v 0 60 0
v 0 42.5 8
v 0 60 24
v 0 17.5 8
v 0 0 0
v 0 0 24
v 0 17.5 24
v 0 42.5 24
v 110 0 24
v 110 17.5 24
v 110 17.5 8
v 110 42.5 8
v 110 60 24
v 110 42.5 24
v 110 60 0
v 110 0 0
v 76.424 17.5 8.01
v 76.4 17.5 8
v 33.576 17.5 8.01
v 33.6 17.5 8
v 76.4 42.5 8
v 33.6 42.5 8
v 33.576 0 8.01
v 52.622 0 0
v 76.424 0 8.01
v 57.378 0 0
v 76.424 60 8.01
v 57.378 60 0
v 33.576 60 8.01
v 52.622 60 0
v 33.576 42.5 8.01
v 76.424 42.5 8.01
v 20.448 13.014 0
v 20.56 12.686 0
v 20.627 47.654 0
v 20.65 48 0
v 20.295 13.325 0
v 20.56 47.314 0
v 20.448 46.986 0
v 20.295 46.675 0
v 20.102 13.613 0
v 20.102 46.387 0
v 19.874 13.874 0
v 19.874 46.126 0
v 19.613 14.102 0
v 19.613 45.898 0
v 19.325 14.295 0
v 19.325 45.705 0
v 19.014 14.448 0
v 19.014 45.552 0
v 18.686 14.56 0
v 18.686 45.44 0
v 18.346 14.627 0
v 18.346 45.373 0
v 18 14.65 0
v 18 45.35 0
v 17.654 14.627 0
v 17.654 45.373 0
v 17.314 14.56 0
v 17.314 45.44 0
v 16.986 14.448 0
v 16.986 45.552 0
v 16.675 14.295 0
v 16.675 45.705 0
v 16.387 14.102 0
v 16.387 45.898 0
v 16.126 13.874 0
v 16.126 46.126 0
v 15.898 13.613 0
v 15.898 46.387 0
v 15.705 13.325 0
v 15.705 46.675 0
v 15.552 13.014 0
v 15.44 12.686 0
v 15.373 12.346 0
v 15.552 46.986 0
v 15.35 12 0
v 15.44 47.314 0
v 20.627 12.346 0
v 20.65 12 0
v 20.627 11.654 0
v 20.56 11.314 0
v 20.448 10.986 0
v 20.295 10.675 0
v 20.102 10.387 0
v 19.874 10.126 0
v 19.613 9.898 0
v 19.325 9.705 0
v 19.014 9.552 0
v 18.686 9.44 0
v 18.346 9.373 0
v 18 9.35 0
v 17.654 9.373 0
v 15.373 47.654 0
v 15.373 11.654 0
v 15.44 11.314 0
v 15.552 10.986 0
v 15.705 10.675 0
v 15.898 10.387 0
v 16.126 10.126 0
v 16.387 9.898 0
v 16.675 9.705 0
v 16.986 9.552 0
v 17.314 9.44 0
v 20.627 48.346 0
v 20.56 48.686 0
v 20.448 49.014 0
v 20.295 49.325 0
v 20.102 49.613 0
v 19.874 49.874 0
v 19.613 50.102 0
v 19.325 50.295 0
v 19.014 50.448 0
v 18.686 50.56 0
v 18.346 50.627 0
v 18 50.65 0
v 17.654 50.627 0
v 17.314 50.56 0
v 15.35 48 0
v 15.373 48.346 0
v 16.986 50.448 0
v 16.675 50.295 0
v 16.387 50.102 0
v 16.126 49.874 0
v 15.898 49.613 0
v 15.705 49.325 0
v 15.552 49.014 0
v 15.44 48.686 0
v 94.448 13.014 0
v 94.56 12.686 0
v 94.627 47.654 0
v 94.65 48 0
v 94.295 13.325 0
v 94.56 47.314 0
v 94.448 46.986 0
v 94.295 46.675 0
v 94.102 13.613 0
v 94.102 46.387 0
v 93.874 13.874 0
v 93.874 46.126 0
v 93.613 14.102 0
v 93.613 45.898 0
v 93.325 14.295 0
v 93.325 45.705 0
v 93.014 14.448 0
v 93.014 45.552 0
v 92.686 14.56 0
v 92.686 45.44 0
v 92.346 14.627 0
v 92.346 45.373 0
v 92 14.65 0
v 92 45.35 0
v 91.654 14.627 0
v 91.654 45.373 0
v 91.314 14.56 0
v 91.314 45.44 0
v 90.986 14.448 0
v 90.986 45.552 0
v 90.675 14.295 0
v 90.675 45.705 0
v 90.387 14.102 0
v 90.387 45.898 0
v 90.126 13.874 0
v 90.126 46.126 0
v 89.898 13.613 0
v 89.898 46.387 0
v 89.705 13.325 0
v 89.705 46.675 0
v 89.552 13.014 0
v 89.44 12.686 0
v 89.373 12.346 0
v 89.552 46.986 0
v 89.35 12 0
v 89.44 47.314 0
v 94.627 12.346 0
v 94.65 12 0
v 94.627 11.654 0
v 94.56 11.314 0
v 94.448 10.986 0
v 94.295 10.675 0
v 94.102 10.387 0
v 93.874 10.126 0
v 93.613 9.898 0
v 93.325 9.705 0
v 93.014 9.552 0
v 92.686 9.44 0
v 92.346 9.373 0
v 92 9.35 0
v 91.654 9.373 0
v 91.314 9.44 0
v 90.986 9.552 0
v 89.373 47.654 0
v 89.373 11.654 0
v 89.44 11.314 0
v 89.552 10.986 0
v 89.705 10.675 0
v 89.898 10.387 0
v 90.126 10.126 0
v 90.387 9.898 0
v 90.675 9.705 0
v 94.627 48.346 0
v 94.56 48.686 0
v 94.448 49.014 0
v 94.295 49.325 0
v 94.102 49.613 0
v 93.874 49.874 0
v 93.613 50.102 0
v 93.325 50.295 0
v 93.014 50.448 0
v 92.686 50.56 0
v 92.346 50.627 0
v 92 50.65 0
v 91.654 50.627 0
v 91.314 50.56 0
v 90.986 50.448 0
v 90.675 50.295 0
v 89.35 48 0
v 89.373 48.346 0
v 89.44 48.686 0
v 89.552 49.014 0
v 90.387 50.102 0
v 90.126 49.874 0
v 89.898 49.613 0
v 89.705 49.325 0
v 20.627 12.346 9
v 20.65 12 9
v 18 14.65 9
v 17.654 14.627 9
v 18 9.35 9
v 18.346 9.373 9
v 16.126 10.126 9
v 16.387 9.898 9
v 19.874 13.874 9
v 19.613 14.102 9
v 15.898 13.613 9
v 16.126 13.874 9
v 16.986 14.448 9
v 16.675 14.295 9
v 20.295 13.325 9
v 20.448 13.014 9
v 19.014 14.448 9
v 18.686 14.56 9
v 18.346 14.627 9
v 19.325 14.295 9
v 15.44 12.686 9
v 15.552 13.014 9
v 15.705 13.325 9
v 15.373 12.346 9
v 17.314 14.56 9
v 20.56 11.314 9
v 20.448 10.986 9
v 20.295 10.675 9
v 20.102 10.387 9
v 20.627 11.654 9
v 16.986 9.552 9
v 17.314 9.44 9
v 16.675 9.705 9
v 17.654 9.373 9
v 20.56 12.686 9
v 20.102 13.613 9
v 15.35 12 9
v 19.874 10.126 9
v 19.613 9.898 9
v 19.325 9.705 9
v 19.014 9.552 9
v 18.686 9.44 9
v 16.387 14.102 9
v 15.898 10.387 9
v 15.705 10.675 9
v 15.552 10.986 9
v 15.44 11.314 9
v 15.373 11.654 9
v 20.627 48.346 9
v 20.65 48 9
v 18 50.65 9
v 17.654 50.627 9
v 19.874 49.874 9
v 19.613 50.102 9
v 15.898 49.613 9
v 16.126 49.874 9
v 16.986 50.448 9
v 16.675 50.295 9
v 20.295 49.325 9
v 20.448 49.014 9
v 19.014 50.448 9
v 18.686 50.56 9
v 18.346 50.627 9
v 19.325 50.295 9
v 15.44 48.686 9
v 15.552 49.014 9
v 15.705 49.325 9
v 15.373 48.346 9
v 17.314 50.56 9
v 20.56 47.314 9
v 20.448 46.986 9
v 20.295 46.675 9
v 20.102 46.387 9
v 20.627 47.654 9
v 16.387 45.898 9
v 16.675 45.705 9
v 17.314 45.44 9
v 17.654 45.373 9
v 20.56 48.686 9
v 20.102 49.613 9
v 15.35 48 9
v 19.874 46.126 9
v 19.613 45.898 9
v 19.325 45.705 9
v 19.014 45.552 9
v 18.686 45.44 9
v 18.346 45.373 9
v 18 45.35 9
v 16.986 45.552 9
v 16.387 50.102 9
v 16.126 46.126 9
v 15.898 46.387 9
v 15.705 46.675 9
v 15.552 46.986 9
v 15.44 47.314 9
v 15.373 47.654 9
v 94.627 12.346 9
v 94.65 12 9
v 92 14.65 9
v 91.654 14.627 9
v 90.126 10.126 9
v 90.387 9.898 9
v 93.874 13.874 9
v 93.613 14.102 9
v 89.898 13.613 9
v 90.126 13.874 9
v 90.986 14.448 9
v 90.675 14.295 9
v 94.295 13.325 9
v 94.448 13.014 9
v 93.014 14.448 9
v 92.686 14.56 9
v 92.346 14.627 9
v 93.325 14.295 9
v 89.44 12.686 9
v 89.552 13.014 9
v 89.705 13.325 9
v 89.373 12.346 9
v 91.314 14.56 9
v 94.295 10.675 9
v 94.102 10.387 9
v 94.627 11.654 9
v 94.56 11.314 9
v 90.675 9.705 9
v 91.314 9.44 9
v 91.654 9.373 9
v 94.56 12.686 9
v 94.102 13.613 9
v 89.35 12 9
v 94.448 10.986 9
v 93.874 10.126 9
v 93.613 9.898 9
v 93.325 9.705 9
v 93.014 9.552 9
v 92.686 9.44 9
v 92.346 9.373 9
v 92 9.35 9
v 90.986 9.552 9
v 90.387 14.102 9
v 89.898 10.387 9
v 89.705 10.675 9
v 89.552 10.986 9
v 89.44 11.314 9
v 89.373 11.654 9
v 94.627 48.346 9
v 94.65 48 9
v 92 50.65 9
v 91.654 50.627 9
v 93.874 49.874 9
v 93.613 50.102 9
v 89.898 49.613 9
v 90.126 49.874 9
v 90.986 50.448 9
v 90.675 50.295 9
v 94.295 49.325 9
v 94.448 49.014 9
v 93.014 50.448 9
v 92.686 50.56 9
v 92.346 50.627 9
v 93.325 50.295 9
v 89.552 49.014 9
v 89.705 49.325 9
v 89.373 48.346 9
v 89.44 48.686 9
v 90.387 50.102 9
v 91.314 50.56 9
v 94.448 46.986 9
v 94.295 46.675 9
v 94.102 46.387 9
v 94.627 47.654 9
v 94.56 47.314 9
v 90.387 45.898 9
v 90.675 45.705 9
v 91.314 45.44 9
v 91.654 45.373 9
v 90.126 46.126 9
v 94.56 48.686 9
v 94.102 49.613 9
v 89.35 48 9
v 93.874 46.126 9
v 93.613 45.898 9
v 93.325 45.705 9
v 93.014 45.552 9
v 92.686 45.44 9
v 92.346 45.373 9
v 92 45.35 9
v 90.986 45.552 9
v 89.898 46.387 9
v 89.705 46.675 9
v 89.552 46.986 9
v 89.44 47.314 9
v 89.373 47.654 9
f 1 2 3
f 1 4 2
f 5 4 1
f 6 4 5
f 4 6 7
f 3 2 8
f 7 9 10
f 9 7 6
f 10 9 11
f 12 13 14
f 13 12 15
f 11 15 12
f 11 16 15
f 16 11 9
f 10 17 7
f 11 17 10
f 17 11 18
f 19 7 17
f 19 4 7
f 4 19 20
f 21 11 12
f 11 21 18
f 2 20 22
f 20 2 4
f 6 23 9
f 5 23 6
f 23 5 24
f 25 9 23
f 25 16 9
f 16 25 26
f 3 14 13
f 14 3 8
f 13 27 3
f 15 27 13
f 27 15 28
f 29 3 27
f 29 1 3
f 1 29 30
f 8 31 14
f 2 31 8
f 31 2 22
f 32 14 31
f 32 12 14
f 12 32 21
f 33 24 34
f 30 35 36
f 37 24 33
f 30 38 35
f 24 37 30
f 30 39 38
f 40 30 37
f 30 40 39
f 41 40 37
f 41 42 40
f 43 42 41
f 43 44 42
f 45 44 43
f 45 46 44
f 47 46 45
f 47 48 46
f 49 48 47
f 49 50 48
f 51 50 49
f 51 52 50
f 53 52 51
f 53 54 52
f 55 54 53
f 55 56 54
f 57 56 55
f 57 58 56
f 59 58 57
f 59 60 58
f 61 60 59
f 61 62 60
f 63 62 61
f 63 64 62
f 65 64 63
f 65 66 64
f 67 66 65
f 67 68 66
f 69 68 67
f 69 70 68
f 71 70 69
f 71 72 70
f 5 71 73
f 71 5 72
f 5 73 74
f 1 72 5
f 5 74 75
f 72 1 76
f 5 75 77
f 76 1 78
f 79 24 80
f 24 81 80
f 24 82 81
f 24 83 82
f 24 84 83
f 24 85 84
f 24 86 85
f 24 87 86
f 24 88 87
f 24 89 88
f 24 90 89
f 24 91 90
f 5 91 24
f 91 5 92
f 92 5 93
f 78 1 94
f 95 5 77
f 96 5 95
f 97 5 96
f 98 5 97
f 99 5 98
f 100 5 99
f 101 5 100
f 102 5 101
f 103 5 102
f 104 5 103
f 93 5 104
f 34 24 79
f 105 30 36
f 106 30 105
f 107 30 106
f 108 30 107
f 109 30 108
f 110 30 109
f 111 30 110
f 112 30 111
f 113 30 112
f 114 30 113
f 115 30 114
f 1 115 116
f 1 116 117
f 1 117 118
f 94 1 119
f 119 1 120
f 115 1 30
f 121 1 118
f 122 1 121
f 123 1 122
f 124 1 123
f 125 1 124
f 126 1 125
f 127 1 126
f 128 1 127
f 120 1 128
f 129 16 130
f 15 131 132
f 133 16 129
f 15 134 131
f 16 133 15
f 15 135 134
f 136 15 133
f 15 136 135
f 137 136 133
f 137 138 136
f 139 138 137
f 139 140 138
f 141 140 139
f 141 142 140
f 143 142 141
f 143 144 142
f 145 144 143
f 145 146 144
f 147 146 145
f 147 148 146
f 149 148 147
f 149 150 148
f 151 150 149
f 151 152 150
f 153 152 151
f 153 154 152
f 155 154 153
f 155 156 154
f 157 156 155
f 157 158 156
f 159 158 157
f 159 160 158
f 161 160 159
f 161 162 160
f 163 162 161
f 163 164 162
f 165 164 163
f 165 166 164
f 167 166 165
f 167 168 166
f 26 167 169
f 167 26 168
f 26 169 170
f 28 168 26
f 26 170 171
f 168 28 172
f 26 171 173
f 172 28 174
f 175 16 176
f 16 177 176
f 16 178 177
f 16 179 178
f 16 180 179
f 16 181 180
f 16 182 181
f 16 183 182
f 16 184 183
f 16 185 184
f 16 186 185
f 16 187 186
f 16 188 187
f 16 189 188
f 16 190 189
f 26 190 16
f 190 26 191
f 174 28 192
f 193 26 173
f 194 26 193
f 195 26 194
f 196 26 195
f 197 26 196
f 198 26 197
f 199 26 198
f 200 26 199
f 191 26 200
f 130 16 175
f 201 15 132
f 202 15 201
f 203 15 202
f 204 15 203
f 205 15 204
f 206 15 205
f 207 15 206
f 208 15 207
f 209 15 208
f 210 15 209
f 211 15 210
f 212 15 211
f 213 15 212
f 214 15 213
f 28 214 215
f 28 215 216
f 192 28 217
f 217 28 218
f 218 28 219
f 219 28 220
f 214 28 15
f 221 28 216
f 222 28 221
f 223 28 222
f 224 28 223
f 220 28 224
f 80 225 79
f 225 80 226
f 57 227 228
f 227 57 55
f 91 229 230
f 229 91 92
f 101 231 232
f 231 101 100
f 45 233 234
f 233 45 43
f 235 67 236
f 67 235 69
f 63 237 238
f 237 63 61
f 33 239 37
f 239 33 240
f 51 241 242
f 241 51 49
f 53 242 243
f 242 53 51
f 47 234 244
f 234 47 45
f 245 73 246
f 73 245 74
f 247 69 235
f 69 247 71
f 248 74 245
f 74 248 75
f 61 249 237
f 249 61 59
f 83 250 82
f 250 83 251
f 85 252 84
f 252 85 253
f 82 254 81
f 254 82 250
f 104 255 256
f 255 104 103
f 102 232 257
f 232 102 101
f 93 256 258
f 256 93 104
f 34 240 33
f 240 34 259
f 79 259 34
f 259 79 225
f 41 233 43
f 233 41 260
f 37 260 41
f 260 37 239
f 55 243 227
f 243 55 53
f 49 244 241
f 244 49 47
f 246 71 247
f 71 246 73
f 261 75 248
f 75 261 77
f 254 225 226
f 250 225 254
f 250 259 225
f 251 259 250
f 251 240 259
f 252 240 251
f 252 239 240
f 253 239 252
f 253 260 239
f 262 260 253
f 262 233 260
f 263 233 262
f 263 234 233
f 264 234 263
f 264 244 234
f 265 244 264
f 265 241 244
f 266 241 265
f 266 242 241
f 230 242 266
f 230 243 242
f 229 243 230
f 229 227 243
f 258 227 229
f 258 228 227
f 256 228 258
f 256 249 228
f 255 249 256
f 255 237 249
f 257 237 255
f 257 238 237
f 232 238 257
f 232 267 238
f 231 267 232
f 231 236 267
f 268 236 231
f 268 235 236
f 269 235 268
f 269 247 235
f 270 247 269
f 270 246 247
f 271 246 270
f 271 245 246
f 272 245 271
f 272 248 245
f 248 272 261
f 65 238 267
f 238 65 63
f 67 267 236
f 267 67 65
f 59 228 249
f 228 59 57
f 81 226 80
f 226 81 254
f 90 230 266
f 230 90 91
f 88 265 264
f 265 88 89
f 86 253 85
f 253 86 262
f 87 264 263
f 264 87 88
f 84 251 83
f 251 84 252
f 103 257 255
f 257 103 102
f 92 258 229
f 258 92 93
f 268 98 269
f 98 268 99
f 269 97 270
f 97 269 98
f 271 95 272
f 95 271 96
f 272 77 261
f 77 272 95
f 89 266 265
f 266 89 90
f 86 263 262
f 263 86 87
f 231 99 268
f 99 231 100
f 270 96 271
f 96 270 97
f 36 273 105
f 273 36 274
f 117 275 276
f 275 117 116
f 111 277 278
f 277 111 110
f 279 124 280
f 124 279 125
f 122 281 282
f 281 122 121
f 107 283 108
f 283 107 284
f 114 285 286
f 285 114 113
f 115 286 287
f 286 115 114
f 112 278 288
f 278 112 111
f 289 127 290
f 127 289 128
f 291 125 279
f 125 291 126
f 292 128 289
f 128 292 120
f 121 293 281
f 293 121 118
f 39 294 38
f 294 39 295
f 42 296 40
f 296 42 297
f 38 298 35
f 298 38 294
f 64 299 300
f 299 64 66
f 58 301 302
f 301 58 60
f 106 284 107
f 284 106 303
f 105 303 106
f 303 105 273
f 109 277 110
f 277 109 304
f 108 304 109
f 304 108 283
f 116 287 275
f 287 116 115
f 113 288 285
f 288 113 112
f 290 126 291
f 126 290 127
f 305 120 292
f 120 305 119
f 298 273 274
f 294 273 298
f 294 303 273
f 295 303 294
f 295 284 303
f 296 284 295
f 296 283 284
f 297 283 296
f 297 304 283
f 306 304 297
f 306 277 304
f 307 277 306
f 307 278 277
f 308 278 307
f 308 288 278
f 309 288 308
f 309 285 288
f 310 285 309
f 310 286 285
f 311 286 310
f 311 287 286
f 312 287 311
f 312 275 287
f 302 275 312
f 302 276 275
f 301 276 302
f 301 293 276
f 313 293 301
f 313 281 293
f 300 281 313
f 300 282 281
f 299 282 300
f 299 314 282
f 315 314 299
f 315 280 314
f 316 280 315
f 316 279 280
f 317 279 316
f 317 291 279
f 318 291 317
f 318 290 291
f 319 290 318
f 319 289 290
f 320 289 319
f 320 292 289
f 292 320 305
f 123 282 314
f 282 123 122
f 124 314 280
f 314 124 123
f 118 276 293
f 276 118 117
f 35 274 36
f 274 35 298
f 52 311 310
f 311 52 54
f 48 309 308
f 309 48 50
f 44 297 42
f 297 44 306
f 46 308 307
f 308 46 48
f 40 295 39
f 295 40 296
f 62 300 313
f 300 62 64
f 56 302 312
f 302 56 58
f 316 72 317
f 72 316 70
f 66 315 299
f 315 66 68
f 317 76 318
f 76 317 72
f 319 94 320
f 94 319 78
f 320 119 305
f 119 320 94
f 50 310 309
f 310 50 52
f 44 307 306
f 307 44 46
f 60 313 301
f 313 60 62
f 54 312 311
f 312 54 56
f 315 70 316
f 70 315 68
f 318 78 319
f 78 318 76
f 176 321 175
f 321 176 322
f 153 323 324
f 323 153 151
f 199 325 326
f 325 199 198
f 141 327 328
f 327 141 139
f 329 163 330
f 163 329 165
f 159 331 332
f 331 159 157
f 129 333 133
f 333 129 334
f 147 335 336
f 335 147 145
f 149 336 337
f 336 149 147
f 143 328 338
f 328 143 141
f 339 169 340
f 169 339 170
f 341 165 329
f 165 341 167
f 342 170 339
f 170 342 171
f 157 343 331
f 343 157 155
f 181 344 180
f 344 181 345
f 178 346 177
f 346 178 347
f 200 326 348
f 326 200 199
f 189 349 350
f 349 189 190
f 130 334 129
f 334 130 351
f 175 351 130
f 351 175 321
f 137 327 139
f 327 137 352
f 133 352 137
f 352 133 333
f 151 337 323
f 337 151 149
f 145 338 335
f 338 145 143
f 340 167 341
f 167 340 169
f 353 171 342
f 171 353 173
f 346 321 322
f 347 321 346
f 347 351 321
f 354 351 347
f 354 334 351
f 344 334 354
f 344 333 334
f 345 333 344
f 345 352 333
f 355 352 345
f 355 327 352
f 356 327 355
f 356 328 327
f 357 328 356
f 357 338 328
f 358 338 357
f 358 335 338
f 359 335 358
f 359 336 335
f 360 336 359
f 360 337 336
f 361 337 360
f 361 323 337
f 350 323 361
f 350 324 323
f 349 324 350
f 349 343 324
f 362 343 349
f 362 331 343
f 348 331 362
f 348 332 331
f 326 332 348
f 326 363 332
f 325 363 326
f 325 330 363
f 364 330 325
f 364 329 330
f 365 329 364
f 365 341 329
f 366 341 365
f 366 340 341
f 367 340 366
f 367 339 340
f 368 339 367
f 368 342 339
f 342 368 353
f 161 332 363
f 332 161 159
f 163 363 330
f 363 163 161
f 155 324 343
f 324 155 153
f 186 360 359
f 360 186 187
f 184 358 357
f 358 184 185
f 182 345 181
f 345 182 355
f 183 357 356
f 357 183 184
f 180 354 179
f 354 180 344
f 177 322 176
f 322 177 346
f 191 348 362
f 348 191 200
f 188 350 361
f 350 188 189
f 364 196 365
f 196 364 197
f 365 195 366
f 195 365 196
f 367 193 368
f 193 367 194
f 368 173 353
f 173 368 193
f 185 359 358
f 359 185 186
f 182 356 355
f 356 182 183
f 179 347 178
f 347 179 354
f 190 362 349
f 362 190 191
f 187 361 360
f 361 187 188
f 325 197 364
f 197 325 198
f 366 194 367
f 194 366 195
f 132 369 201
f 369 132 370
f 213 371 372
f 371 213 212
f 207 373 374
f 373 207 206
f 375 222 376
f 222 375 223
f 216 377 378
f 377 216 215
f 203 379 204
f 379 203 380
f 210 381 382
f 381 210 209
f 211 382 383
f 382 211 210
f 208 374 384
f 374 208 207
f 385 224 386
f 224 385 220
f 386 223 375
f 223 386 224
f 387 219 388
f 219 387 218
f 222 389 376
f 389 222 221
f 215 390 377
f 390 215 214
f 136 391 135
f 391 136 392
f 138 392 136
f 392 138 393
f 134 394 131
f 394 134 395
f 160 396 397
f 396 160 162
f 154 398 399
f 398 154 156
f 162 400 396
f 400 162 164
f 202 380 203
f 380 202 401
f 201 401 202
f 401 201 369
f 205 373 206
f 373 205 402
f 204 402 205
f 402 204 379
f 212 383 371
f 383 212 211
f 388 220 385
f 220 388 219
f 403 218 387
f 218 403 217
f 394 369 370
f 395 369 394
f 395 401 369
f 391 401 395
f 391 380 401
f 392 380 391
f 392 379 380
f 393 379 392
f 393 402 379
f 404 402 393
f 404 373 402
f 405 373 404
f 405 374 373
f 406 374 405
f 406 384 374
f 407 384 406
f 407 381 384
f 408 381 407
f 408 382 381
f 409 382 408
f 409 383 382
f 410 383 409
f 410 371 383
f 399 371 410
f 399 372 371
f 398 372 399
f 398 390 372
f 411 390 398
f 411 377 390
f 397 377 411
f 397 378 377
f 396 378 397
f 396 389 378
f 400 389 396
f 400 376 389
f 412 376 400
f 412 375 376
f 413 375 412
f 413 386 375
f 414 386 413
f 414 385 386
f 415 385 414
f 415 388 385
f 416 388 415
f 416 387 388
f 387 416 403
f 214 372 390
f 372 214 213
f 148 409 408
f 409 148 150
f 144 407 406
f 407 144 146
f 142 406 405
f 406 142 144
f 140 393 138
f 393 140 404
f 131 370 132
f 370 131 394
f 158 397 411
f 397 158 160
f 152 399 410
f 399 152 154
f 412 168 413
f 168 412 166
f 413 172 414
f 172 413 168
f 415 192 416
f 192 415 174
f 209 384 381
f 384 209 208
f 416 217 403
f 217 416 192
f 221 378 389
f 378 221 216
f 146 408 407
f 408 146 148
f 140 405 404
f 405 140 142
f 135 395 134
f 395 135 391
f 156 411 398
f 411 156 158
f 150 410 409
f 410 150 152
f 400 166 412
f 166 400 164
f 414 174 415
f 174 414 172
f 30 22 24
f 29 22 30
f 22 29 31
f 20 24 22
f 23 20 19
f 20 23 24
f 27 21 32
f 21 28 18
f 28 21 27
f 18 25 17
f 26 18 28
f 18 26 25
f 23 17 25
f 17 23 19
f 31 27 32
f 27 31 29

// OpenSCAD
// file: rail_spec.scad
// ===== 레일 플랫폼 방식 공용 파라미터 =====
// 핵심 개념: 침대를 들지 않고 굴려서 올라가는 2개의 계량 레일.
//   각 레일 = 알루미늄 프로파일 빔 + 양 끝단 아래 로드셀 2개
//   침대 좌/우 바퀴가 각각 레일 위를 굴러 들어가 크래들에 안착.
//   총 로드셀 4개 = 좌레일 앞/뒤 + 우레일 앞/뒤
//   총중량 = 4개 합 / 무게중심 = 모멘트 계산

// --- 로드셀 CAS BCA-100L ---
L_len=150; L_wid=35; L_thk=40;
L_pitch_x=19; L_pitch_y=15;
L_free_x1=16.5; L_free_x2=35.5;   // 자유단(상면 탭)
L_fix_x1=114.5; L_fix_x2=133.5;   // 고정단(하면 탭)

// --- 스택 높이 ---
PAD_thk    = 6;    // 바닥 패드 두께
FOOT_h     = 2.5;  // 패드 하면 지지 발 높이 (전면접촉 대신 4점 지지)
FOOT_d     = 12;   // 지지 발 지름
SPACER_h   = 5;    // 로드셀 고정단 단상
BRACKET_t  = 8;    // 레일-로드셀 연결 브래킷 두께 (6->8: 굽힘강성 ~2.4배, 평판 처짐 보완)
RAIL_h     = 30;   // 알루미늄 프로파일 높이 (30x60 사용)
RAIL_w     = 60;   // 프로파일 폭 (바퀴 두께 22mm + 여유)
DECK_Z = PAD_thk + SPACER_h + L_thk + BRACKET_t + RAIL_h;   // = 87
// 주: 패드 하면 지지 발(FOOT_h) 때문에 4개 채널 모두 절대 높이가 FOOT_h 만큼
//     동일하게 올라간다. 로드셀 상호 수평/정합은 유지되고(전부 같이 올라감),
//     절대 데크 높이만 DECK_Z + FOOT_h 가 된다. 램프는 하중경로 분리부품이라
//     이 2.5mm 차이는 무시 가능(15° 경사에서 미소).

// --- 레일 전체 ---
CASTER_PITCH = 1700;   // 침대 앞뒤 캐스터 간격
RAMP_ANG = 15;
RAMP_len = DECK_Z / tan(RAMP_ANG);      // 약 325mm
RAIL_len = CASTER_PITCH + 400;          // 캐스터간격 + 양끝 여유

// --- 바퀴 ---
wheel_d=60; wheel_thk=22;   // 실측 후 교체
CRADLE_depth = 9;           // 얕은 크래들: 굴러 넘어갈 수 있되 안착은 되게
// main file
// ===== 바퀴 크래들 (레일 위 캐스터 안착부) =====
// 얕은 V홈이라 앞바퀴가 굴러 지나갈 수 있고, 뒷바퀴는 여기 안착.
// 안착 후 wheel_chock(고임목)을 끼워 고정.
include <rail_spec.scad>
$fn=48;

cr_l = 110;             // 레일 길이방향
cr_w = RAIL_w;
cr_base = 8;            // 레일에 얹히는 바닥 두께
lip_h = 16;             // 바퀴 이탈 방지 측벽

slot_w  = wheel_thk + 3;              // 바퀴 두께 + 여유 (바퀴가 들어갈 홈 폭)
wall_w  = (cr_w - slot_w) / 2;        // 좌우 측벽 각각의 폭

// V홈: 바퀴 지름 기반으로 개구 폭 산출.
// 얕은 V(깊이 CRADLE_depth)에서 바퀴 원과의 접점이 만드는 현(chord) 폭.
// 바퀴 반지름 r, 홈 깊이 d 일 때 개구 반폭 = sqrt(r^2 - (r-d)^2).
V_r     = wheel_d / 2;
V_open  = 2 * sqrt(max(V_r*V_r - (V_r - CRADLE_depth)*(V_r - CRADLE_depth), 0.01));

// --- 실측 강제 (rail_spec 기본값=가정치이면 실물과 안 맞음) ---
// 주: V홈 개구폭은 슬롯폭보다 넓은 게 정상이다. 측벽 상단 립은 남고
//     그 아래를 바퀴 곡률에 맞춰 넓게 파내는 구조이기 때문. 다만 크래들
//     전체 폭(cr_w)을 넘으면 측벽이 통째로 사라지므로 그건 막는다.
assert(wheel_thk > 0, "wheel_thk 실측값을 rail_spec.scad 에 설정하세요");
assert(wheel_d   > 0, "wheel_d 실측값을 rail_spec.scad 에 설정하세요");
assert(V_open <= cr_w,
       "V홈 개구폭이 크래들 전체폭을 넘음 — CRADLE_depth 를 줄이거나 바퀴 지름 확인");

module cradle(){
    echo(str("크래들 ",cr_l,"x",cr_w," / 슬롯 ",slot_w," / 측벽 ",wall_w,
             " / V홈폭 ",V_open," 깊이 ",CRADLE_depth," (바퀴 d",wheel_d," t",wheel_thk,")"));
    difference(){
        union(){
            cube([cr_l, cr_w, cr_base]);
            // 좌우 측벽(리브) — y=0 쪽과 y=cr_w-wall_w 쪽, 각 폭 wall_w
            for(yoff = [0, cr_w - wall_w])
                translate([0, yoff, cr_base])
                    cube([cr_l, wall_w, lip_h]);
        }
        // 얕은 V 크래들 (개구 폭 = V_open, 깊이 = CRADLE_depth)
        translate([cr_l/2, cr_w/2, cr_base])
            rotate([90,0,0])
              translate([0,0,-cr_w])
                linear_extrude(cr_w*2)
                  polygon([[-V_open/2, 0.01],
                           [ V_open/2, 0.01],
                           [ 0, -CRADLE_depth]]);
        // 레일 체결 M5 x4
        for(dx=[18, cr_l-18]) for(dy=[12, cr_w-12])
            translate([dx,dy,-1]) cylinder(d=5.3,h=cr_base+2);
    }
}
cradle();
